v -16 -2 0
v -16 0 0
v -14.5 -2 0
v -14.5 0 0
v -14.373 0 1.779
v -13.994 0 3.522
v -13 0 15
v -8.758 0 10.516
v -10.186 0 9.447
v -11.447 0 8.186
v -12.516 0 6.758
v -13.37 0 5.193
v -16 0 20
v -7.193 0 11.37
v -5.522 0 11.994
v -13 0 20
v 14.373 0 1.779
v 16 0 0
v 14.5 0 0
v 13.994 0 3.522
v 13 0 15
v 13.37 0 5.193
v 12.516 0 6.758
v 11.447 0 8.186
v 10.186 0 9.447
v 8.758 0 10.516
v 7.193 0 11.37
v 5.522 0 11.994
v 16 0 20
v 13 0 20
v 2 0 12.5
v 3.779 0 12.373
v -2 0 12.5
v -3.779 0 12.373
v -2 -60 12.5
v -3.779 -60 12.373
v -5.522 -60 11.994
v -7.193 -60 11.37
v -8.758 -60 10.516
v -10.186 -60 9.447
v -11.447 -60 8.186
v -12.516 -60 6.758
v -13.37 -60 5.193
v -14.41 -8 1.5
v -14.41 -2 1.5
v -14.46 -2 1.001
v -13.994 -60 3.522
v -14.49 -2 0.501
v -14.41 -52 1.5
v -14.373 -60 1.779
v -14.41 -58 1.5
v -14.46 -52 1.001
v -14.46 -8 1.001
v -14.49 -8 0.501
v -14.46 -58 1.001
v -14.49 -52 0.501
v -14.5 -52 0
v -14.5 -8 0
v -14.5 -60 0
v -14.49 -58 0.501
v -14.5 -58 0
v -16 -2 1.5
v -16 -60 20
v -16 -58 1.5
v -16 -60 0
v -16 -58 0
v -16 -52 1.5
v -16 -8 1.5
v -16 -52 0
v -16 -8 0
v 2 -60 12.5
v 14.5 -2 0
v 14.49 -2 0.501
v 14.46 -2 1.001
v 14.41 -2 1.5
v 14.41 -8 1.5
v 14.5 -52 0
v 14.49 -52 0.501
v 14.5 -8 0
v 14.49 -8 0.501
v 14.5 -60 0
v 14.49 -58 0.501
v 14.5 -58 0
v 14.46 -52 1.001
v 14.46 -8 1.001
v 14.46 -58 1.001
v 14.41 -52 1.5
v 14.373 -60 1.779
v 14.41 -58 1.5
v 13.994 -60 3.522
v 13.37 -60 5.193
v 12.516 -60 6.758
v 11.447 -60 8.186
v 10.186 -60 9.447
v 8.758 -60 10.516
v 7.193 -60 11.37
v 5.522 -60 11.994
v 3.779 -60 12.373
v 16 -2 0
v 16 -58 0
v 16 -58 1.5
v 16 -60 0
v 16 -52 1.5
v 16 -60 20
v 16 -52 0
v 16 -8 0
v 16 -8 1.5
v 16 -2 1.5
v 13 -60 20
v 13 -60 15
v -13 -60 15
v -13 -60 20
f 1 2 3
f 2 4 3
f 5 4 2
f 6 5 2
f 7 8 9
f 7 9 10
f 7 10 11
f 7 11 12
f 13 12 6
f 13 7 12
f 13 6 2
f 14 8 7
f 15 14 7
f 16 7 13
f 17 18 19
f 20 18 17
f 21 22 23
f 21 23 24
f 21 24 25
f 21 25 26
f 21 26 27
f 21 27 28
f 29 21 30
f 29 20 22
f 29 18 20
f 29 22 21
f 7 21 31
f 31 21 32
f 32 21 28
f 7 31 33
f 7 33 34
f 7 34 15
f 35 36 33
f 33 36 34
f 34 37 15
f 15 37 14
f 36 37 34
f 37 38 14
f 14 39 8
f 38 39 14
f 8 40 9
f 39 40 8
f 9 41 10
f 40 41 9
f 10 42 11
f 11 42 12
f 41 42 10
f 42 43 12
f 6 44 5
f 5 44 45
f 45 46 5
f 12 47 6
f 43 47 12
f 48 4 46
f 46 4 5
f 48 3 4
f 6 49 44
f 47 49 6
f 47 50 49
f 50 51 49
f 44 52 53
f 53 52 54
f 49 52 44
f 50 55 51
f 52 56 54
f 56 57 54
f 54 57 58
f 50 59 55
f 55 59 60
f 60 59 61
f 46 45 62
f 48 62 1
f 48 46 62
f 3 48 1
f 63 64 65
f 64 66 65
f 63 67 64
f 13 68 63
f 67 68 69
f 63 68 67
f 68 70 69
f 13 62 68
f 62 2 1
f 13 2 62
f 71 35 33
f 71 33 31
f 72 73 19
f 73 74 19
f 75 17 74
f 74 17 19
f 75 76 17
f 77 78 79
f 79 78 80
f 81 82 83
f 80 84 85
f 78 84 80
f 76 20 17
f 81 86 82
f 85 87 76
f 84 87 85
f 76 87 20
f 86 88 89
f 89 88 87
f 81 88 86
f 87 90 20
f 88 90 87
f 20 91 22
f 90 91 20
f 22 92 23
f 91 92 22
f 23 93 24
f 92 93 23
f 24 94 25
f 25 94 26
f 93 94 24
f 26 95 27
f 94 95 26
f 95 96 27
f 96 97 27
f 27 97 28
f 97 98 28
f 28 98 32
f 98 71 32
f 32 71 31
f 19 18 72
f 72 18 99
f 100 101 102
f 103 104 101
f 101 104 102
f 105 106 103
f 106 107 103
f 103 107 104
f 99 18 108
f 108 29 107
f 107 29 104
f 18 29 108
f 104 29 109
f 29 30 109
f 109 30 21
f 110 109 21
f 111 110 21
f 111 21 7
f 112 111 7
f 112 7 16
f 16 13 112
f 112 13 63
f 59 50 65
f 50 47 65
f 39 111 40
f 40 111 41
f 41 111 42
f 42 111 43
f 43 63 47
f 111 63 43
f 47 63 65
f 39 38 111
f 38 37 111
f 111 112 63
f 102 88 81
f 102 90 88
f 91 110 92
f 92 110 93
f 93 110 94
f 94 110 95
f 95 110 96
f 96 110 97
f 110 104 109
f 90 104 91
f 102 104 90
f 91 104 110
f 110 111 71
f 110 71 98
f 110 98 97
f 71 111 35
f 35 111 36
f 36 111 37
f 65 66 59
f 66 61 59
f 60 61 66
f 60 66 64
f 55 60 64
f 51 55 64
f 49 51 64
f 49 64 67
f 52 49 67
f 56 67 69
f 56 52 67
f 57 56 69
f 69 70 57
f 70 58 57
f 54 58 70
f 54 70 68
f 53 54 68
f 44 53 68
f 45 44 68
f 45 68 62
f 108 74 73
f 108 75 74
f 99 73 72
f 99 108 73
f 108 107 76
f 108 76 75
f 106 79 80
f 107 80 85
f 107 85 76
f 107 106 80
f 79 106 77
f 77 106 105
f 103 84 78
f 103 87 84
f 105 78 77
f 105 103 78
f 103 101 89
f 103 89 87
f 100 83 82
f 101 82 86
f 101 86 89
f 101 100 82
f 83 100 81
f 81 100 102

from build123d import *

# Parameters (mm, degrees)
SKETCH_W        = 32
SKETCH_H        = 20
PAD_DEPTH       = 60
SKETCH001_W     = 26
SKETCH001_H     = 5
POCKET_DEPTH    = 60.001
POCKET001_DEPTH = 60.001
SKETCH003_W     = 1.5
SKETCH003_H     = 6
POCKET002_DEPTH = 32.001


with BuildPart() as part:
    # Sketch → Pad (new body)
    with BuildSketch(Plane.XZ):
        with Locations((0, 10)):
            Rectangle(SKETCH_W, SKETCH_H)
    extrude(amount=PAD_DEPTH)

    # Sketch001 (on Face6 of Pad) → Pocket (cut, through all)
    with BuildSketch(Plane.XZ.offset(60)):
        with Locations((0, 17.5)):
            Rectangle(SKETCH001_W, SKETCH001_H)
    extrude(amount=-POCKET_DEPTH, mode=Mode.SUBTRACT)

    # Sketch002 (on Face5 of Pocket) → Pocket001 (cut, through all)
    with BuildSketch(Plane.XZ.offset(60)):
        with BuildLine():
            ThreePointArc((-2.000029, 12.5), (-10.838845, 8.838824), (-14.5, 0))
            Line((-14.5, 0), (14.5, 0))
            ThreePointArc((14.5, 0), (10.838845, 8.838824), (2.000029, 12.5))
            Line((-2.000029, 12.5), (2.000029, 12.5))
        make_face()
    extrude(amount=-POCKET001_DEPTH, mode=Mode.SUBTRACT)

    # Sketch003 (on Face9 of Pocket001) → Pocket002 (cut, through all)
    with BuildSketch(Plane(origin=(16, 0, 0), x_dir=(0, 0, 1), z_dir=(1, 0, 0))):
        with Locations((0.75, 55)):
            Rectangle(SKETCH003_W, SKETCH003_H)
        with Locations((0.75, 5)):
            Rectangle(SKETCH003_W, SKETCH003_H)
    extrude(amount=-POCKET002_DEPTH, mode=Mode.SUBTRACT)


solid = part.part
